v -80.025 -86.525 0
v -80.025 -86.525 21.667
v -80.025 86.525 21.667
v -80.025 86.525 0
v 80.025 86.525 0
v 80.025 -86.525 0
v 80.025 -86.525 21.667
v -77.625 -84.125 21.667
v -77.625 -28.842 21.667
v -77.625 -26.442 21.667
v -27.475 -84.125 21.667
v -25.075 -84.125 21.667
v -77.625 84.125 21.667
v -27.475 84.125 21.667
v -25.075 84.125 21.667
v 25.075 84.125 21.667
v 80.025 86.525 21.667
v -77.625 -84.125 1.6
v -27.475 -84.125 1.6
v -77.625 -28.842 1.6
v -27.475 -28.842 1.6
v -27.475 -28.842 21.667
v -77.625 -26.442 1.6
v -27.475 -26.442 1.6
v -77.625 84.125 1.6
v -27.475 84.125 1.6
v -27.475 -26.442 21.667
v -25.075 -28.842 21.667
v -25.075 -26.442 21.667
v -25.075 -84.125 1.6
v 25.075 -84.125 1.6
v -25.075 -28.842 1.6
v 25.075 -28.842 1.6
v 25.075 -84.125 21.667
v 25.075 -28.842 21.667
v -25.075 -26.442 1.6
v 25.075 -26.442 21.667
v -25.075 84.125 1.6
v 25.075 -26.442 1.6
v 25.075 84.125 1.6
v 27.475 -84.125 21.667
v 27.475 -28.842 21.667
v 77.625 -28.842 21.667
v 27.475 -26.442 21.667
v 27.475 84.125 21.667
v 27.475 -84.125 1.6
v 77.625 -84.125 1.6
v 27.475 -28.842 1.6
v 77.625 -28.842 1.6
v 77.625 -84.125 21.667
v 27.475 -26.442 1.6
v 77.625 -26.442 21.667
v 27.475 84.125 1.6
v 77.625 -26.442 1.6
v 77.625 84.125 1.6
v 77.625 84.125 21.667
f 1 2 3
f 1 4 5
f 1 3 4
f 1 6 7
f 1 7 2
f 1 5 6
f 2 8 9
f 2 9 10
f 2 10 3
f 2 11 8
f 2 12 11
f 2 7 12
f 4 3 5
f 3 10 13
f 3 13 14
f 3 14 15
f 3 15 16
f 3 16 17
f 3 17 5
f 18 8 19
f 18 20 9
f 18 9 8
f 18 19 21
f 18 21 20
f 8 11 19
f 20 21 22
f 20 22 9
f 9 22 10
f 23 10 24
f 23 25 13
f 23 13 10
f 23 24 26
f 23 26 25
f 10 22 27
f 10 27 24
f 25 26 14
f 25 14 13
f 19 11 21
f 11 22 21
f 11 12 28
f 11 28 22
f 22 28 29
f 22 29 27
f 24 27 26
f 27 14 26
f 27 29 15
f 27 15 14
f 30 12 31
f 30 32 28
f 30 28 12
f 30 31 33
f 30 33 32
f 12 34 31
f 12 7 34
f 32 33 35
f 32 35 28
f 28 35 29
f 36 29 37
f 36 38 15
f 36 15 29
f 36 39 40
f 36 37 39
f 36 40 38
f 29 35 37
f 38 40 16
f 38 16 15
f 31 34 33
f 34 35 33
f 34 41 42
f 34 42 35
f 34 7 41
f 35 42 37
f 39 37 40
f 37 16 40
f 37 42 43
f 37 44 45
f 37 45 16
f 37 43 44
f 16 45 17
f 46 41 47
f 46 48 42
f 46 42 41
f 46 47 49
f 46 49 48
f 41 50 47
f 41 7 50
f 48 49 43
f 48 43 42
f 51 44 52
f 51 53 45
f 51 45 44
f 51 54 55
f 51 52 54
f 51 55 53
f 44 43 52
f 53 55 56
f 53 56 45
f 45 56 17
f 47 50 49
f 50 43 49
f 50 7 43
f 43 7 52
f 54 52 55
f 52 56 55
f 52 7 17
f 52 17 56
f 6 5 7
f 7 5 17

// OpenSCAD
// Start: lazy_union
default_5_default_5();
// End: lazy_union

// Modules.

// 'PartMaterial undef-default - default 5.0'
module default_5_default_5() {
  // 'None : _combine_solids_and_holes'
  union() {
    // '_combine_solids_and_holes'
    difference() {
      // 'rings : _combine_solids_and_holes'
      union() {
        // 'box'
        multmatrix(m=[[1.0, 0.0, 0.0, -80.025], [0.0, 1.0, 0.0, -86.525], [0.0, 0.0, 1.0, 0.0], [0.0, 0.0, 0.0, 1.0]]) {
          // 'box : _combine_solids_and_holes'
          union() {
            // 'box'
            cube(size=[160.05, 173.05, 21.666666666666668]);
          }
        }
      }
      // 'rings'
      multmatrix(m=[[1.0, 0.0, 0.0, -77.625], [0.0, 1.0, 0.0, -26.441666666666677], [0.0, 0.0, 1.0, 1.6], [0.0, 0.0, 0.0, 1.0]]) {
        // "('hole', 0, 0) : _combine_solids_and_holes"
        union() {
          // ('hole', 0, 0)
          cube(size=[50.150000000000006, 110.56666666666668, 20.076666666666668]);
        }
      }
      // 'rings'
      multmatrix(m=[[1.0, 0.0, 0.0, -77.625], [0.0, 1.0, 0.0, -84.12500000000003], [0.0, 0.0, 1.0, 1.6], [0.0, 0.0, 0.0, 1.0]]) {
        // "('hole', 0, 1) : _combine_solids_and_holes"
        union() {
          // ('hole', 0, 1)
          cube(size=[50.150000000000006, 55.28333333333334, 20.076666666666668]);
        }
      }
      // 'rings'
      multmatrix(m=[[1.0, 0.0, 0.0, -25.075000000000003], [0.0, 1.0, 0.0, -26.441666666666677], [0.0, 0.0, 1.0, 1.6], [0.0, 0.0, 0.0, 1.0]]) {
        // "('hole', 1, 0) : _combine_solids_and_holes"
        union() {
          // ('hole', 1, 0)
          cube(size=[50.150000000000006, 110.56666666666668, 20.076666666666668]);
        }
      }
      // 'rings'
      multmatrix(m=[[1.0, 0.0, 0.0, -25.075000000000003], [0.0, 1.0, 0.0, -84.12500000000003], [0.0, 0.0, 1.0, 1.6], [0.0, 0.0, 0.0, 1.0]]) {
        // "('hole', 1, 1) : _combine_solids_and_holes"
        union() {
          // ('hole', 1, 1)
          cube(size=[50.150000000000006, 55.28333333333334, 20.076666666666668]);
        }
      }
      // 'rings'
      multmatrix(m=[[1.0, 0.0, 0.0, 27.474999999999994], [0.0, 1.0, 0.0, -26.441666666666677], [0.0, 0.0, 1.0, 1.6], [0.0, 0.0, 0.0, 1.0]]) {
        // "('hole', 2, 0) : _combine_solids_and_holes"
        union() {
          // ('hole', 2, 0)
          cube(size=[50.150000000000006, 110.56666666666668, 20.076666666666668]);
        }
      }
      // 'rings'
      multmatrix(m=[[1.0, 0.0, 0.0, 27.474999999999994], [0.0, 1.0, 0.0, -84.12500000000003], [0.0, 0.0, 1.0, 1.6], [0.0, 0.0, 0.0, 1.0]]) {
        // "('hole', 2, 1) : _combine_solids_and_holes"
        union() {
          // ('hole', 2, 1)
          cube(size=[50.150000000000006, 55.28333333333334, 20.076666666666668]);
        }
      }
    }
  }
} // end module default_5_default_5
